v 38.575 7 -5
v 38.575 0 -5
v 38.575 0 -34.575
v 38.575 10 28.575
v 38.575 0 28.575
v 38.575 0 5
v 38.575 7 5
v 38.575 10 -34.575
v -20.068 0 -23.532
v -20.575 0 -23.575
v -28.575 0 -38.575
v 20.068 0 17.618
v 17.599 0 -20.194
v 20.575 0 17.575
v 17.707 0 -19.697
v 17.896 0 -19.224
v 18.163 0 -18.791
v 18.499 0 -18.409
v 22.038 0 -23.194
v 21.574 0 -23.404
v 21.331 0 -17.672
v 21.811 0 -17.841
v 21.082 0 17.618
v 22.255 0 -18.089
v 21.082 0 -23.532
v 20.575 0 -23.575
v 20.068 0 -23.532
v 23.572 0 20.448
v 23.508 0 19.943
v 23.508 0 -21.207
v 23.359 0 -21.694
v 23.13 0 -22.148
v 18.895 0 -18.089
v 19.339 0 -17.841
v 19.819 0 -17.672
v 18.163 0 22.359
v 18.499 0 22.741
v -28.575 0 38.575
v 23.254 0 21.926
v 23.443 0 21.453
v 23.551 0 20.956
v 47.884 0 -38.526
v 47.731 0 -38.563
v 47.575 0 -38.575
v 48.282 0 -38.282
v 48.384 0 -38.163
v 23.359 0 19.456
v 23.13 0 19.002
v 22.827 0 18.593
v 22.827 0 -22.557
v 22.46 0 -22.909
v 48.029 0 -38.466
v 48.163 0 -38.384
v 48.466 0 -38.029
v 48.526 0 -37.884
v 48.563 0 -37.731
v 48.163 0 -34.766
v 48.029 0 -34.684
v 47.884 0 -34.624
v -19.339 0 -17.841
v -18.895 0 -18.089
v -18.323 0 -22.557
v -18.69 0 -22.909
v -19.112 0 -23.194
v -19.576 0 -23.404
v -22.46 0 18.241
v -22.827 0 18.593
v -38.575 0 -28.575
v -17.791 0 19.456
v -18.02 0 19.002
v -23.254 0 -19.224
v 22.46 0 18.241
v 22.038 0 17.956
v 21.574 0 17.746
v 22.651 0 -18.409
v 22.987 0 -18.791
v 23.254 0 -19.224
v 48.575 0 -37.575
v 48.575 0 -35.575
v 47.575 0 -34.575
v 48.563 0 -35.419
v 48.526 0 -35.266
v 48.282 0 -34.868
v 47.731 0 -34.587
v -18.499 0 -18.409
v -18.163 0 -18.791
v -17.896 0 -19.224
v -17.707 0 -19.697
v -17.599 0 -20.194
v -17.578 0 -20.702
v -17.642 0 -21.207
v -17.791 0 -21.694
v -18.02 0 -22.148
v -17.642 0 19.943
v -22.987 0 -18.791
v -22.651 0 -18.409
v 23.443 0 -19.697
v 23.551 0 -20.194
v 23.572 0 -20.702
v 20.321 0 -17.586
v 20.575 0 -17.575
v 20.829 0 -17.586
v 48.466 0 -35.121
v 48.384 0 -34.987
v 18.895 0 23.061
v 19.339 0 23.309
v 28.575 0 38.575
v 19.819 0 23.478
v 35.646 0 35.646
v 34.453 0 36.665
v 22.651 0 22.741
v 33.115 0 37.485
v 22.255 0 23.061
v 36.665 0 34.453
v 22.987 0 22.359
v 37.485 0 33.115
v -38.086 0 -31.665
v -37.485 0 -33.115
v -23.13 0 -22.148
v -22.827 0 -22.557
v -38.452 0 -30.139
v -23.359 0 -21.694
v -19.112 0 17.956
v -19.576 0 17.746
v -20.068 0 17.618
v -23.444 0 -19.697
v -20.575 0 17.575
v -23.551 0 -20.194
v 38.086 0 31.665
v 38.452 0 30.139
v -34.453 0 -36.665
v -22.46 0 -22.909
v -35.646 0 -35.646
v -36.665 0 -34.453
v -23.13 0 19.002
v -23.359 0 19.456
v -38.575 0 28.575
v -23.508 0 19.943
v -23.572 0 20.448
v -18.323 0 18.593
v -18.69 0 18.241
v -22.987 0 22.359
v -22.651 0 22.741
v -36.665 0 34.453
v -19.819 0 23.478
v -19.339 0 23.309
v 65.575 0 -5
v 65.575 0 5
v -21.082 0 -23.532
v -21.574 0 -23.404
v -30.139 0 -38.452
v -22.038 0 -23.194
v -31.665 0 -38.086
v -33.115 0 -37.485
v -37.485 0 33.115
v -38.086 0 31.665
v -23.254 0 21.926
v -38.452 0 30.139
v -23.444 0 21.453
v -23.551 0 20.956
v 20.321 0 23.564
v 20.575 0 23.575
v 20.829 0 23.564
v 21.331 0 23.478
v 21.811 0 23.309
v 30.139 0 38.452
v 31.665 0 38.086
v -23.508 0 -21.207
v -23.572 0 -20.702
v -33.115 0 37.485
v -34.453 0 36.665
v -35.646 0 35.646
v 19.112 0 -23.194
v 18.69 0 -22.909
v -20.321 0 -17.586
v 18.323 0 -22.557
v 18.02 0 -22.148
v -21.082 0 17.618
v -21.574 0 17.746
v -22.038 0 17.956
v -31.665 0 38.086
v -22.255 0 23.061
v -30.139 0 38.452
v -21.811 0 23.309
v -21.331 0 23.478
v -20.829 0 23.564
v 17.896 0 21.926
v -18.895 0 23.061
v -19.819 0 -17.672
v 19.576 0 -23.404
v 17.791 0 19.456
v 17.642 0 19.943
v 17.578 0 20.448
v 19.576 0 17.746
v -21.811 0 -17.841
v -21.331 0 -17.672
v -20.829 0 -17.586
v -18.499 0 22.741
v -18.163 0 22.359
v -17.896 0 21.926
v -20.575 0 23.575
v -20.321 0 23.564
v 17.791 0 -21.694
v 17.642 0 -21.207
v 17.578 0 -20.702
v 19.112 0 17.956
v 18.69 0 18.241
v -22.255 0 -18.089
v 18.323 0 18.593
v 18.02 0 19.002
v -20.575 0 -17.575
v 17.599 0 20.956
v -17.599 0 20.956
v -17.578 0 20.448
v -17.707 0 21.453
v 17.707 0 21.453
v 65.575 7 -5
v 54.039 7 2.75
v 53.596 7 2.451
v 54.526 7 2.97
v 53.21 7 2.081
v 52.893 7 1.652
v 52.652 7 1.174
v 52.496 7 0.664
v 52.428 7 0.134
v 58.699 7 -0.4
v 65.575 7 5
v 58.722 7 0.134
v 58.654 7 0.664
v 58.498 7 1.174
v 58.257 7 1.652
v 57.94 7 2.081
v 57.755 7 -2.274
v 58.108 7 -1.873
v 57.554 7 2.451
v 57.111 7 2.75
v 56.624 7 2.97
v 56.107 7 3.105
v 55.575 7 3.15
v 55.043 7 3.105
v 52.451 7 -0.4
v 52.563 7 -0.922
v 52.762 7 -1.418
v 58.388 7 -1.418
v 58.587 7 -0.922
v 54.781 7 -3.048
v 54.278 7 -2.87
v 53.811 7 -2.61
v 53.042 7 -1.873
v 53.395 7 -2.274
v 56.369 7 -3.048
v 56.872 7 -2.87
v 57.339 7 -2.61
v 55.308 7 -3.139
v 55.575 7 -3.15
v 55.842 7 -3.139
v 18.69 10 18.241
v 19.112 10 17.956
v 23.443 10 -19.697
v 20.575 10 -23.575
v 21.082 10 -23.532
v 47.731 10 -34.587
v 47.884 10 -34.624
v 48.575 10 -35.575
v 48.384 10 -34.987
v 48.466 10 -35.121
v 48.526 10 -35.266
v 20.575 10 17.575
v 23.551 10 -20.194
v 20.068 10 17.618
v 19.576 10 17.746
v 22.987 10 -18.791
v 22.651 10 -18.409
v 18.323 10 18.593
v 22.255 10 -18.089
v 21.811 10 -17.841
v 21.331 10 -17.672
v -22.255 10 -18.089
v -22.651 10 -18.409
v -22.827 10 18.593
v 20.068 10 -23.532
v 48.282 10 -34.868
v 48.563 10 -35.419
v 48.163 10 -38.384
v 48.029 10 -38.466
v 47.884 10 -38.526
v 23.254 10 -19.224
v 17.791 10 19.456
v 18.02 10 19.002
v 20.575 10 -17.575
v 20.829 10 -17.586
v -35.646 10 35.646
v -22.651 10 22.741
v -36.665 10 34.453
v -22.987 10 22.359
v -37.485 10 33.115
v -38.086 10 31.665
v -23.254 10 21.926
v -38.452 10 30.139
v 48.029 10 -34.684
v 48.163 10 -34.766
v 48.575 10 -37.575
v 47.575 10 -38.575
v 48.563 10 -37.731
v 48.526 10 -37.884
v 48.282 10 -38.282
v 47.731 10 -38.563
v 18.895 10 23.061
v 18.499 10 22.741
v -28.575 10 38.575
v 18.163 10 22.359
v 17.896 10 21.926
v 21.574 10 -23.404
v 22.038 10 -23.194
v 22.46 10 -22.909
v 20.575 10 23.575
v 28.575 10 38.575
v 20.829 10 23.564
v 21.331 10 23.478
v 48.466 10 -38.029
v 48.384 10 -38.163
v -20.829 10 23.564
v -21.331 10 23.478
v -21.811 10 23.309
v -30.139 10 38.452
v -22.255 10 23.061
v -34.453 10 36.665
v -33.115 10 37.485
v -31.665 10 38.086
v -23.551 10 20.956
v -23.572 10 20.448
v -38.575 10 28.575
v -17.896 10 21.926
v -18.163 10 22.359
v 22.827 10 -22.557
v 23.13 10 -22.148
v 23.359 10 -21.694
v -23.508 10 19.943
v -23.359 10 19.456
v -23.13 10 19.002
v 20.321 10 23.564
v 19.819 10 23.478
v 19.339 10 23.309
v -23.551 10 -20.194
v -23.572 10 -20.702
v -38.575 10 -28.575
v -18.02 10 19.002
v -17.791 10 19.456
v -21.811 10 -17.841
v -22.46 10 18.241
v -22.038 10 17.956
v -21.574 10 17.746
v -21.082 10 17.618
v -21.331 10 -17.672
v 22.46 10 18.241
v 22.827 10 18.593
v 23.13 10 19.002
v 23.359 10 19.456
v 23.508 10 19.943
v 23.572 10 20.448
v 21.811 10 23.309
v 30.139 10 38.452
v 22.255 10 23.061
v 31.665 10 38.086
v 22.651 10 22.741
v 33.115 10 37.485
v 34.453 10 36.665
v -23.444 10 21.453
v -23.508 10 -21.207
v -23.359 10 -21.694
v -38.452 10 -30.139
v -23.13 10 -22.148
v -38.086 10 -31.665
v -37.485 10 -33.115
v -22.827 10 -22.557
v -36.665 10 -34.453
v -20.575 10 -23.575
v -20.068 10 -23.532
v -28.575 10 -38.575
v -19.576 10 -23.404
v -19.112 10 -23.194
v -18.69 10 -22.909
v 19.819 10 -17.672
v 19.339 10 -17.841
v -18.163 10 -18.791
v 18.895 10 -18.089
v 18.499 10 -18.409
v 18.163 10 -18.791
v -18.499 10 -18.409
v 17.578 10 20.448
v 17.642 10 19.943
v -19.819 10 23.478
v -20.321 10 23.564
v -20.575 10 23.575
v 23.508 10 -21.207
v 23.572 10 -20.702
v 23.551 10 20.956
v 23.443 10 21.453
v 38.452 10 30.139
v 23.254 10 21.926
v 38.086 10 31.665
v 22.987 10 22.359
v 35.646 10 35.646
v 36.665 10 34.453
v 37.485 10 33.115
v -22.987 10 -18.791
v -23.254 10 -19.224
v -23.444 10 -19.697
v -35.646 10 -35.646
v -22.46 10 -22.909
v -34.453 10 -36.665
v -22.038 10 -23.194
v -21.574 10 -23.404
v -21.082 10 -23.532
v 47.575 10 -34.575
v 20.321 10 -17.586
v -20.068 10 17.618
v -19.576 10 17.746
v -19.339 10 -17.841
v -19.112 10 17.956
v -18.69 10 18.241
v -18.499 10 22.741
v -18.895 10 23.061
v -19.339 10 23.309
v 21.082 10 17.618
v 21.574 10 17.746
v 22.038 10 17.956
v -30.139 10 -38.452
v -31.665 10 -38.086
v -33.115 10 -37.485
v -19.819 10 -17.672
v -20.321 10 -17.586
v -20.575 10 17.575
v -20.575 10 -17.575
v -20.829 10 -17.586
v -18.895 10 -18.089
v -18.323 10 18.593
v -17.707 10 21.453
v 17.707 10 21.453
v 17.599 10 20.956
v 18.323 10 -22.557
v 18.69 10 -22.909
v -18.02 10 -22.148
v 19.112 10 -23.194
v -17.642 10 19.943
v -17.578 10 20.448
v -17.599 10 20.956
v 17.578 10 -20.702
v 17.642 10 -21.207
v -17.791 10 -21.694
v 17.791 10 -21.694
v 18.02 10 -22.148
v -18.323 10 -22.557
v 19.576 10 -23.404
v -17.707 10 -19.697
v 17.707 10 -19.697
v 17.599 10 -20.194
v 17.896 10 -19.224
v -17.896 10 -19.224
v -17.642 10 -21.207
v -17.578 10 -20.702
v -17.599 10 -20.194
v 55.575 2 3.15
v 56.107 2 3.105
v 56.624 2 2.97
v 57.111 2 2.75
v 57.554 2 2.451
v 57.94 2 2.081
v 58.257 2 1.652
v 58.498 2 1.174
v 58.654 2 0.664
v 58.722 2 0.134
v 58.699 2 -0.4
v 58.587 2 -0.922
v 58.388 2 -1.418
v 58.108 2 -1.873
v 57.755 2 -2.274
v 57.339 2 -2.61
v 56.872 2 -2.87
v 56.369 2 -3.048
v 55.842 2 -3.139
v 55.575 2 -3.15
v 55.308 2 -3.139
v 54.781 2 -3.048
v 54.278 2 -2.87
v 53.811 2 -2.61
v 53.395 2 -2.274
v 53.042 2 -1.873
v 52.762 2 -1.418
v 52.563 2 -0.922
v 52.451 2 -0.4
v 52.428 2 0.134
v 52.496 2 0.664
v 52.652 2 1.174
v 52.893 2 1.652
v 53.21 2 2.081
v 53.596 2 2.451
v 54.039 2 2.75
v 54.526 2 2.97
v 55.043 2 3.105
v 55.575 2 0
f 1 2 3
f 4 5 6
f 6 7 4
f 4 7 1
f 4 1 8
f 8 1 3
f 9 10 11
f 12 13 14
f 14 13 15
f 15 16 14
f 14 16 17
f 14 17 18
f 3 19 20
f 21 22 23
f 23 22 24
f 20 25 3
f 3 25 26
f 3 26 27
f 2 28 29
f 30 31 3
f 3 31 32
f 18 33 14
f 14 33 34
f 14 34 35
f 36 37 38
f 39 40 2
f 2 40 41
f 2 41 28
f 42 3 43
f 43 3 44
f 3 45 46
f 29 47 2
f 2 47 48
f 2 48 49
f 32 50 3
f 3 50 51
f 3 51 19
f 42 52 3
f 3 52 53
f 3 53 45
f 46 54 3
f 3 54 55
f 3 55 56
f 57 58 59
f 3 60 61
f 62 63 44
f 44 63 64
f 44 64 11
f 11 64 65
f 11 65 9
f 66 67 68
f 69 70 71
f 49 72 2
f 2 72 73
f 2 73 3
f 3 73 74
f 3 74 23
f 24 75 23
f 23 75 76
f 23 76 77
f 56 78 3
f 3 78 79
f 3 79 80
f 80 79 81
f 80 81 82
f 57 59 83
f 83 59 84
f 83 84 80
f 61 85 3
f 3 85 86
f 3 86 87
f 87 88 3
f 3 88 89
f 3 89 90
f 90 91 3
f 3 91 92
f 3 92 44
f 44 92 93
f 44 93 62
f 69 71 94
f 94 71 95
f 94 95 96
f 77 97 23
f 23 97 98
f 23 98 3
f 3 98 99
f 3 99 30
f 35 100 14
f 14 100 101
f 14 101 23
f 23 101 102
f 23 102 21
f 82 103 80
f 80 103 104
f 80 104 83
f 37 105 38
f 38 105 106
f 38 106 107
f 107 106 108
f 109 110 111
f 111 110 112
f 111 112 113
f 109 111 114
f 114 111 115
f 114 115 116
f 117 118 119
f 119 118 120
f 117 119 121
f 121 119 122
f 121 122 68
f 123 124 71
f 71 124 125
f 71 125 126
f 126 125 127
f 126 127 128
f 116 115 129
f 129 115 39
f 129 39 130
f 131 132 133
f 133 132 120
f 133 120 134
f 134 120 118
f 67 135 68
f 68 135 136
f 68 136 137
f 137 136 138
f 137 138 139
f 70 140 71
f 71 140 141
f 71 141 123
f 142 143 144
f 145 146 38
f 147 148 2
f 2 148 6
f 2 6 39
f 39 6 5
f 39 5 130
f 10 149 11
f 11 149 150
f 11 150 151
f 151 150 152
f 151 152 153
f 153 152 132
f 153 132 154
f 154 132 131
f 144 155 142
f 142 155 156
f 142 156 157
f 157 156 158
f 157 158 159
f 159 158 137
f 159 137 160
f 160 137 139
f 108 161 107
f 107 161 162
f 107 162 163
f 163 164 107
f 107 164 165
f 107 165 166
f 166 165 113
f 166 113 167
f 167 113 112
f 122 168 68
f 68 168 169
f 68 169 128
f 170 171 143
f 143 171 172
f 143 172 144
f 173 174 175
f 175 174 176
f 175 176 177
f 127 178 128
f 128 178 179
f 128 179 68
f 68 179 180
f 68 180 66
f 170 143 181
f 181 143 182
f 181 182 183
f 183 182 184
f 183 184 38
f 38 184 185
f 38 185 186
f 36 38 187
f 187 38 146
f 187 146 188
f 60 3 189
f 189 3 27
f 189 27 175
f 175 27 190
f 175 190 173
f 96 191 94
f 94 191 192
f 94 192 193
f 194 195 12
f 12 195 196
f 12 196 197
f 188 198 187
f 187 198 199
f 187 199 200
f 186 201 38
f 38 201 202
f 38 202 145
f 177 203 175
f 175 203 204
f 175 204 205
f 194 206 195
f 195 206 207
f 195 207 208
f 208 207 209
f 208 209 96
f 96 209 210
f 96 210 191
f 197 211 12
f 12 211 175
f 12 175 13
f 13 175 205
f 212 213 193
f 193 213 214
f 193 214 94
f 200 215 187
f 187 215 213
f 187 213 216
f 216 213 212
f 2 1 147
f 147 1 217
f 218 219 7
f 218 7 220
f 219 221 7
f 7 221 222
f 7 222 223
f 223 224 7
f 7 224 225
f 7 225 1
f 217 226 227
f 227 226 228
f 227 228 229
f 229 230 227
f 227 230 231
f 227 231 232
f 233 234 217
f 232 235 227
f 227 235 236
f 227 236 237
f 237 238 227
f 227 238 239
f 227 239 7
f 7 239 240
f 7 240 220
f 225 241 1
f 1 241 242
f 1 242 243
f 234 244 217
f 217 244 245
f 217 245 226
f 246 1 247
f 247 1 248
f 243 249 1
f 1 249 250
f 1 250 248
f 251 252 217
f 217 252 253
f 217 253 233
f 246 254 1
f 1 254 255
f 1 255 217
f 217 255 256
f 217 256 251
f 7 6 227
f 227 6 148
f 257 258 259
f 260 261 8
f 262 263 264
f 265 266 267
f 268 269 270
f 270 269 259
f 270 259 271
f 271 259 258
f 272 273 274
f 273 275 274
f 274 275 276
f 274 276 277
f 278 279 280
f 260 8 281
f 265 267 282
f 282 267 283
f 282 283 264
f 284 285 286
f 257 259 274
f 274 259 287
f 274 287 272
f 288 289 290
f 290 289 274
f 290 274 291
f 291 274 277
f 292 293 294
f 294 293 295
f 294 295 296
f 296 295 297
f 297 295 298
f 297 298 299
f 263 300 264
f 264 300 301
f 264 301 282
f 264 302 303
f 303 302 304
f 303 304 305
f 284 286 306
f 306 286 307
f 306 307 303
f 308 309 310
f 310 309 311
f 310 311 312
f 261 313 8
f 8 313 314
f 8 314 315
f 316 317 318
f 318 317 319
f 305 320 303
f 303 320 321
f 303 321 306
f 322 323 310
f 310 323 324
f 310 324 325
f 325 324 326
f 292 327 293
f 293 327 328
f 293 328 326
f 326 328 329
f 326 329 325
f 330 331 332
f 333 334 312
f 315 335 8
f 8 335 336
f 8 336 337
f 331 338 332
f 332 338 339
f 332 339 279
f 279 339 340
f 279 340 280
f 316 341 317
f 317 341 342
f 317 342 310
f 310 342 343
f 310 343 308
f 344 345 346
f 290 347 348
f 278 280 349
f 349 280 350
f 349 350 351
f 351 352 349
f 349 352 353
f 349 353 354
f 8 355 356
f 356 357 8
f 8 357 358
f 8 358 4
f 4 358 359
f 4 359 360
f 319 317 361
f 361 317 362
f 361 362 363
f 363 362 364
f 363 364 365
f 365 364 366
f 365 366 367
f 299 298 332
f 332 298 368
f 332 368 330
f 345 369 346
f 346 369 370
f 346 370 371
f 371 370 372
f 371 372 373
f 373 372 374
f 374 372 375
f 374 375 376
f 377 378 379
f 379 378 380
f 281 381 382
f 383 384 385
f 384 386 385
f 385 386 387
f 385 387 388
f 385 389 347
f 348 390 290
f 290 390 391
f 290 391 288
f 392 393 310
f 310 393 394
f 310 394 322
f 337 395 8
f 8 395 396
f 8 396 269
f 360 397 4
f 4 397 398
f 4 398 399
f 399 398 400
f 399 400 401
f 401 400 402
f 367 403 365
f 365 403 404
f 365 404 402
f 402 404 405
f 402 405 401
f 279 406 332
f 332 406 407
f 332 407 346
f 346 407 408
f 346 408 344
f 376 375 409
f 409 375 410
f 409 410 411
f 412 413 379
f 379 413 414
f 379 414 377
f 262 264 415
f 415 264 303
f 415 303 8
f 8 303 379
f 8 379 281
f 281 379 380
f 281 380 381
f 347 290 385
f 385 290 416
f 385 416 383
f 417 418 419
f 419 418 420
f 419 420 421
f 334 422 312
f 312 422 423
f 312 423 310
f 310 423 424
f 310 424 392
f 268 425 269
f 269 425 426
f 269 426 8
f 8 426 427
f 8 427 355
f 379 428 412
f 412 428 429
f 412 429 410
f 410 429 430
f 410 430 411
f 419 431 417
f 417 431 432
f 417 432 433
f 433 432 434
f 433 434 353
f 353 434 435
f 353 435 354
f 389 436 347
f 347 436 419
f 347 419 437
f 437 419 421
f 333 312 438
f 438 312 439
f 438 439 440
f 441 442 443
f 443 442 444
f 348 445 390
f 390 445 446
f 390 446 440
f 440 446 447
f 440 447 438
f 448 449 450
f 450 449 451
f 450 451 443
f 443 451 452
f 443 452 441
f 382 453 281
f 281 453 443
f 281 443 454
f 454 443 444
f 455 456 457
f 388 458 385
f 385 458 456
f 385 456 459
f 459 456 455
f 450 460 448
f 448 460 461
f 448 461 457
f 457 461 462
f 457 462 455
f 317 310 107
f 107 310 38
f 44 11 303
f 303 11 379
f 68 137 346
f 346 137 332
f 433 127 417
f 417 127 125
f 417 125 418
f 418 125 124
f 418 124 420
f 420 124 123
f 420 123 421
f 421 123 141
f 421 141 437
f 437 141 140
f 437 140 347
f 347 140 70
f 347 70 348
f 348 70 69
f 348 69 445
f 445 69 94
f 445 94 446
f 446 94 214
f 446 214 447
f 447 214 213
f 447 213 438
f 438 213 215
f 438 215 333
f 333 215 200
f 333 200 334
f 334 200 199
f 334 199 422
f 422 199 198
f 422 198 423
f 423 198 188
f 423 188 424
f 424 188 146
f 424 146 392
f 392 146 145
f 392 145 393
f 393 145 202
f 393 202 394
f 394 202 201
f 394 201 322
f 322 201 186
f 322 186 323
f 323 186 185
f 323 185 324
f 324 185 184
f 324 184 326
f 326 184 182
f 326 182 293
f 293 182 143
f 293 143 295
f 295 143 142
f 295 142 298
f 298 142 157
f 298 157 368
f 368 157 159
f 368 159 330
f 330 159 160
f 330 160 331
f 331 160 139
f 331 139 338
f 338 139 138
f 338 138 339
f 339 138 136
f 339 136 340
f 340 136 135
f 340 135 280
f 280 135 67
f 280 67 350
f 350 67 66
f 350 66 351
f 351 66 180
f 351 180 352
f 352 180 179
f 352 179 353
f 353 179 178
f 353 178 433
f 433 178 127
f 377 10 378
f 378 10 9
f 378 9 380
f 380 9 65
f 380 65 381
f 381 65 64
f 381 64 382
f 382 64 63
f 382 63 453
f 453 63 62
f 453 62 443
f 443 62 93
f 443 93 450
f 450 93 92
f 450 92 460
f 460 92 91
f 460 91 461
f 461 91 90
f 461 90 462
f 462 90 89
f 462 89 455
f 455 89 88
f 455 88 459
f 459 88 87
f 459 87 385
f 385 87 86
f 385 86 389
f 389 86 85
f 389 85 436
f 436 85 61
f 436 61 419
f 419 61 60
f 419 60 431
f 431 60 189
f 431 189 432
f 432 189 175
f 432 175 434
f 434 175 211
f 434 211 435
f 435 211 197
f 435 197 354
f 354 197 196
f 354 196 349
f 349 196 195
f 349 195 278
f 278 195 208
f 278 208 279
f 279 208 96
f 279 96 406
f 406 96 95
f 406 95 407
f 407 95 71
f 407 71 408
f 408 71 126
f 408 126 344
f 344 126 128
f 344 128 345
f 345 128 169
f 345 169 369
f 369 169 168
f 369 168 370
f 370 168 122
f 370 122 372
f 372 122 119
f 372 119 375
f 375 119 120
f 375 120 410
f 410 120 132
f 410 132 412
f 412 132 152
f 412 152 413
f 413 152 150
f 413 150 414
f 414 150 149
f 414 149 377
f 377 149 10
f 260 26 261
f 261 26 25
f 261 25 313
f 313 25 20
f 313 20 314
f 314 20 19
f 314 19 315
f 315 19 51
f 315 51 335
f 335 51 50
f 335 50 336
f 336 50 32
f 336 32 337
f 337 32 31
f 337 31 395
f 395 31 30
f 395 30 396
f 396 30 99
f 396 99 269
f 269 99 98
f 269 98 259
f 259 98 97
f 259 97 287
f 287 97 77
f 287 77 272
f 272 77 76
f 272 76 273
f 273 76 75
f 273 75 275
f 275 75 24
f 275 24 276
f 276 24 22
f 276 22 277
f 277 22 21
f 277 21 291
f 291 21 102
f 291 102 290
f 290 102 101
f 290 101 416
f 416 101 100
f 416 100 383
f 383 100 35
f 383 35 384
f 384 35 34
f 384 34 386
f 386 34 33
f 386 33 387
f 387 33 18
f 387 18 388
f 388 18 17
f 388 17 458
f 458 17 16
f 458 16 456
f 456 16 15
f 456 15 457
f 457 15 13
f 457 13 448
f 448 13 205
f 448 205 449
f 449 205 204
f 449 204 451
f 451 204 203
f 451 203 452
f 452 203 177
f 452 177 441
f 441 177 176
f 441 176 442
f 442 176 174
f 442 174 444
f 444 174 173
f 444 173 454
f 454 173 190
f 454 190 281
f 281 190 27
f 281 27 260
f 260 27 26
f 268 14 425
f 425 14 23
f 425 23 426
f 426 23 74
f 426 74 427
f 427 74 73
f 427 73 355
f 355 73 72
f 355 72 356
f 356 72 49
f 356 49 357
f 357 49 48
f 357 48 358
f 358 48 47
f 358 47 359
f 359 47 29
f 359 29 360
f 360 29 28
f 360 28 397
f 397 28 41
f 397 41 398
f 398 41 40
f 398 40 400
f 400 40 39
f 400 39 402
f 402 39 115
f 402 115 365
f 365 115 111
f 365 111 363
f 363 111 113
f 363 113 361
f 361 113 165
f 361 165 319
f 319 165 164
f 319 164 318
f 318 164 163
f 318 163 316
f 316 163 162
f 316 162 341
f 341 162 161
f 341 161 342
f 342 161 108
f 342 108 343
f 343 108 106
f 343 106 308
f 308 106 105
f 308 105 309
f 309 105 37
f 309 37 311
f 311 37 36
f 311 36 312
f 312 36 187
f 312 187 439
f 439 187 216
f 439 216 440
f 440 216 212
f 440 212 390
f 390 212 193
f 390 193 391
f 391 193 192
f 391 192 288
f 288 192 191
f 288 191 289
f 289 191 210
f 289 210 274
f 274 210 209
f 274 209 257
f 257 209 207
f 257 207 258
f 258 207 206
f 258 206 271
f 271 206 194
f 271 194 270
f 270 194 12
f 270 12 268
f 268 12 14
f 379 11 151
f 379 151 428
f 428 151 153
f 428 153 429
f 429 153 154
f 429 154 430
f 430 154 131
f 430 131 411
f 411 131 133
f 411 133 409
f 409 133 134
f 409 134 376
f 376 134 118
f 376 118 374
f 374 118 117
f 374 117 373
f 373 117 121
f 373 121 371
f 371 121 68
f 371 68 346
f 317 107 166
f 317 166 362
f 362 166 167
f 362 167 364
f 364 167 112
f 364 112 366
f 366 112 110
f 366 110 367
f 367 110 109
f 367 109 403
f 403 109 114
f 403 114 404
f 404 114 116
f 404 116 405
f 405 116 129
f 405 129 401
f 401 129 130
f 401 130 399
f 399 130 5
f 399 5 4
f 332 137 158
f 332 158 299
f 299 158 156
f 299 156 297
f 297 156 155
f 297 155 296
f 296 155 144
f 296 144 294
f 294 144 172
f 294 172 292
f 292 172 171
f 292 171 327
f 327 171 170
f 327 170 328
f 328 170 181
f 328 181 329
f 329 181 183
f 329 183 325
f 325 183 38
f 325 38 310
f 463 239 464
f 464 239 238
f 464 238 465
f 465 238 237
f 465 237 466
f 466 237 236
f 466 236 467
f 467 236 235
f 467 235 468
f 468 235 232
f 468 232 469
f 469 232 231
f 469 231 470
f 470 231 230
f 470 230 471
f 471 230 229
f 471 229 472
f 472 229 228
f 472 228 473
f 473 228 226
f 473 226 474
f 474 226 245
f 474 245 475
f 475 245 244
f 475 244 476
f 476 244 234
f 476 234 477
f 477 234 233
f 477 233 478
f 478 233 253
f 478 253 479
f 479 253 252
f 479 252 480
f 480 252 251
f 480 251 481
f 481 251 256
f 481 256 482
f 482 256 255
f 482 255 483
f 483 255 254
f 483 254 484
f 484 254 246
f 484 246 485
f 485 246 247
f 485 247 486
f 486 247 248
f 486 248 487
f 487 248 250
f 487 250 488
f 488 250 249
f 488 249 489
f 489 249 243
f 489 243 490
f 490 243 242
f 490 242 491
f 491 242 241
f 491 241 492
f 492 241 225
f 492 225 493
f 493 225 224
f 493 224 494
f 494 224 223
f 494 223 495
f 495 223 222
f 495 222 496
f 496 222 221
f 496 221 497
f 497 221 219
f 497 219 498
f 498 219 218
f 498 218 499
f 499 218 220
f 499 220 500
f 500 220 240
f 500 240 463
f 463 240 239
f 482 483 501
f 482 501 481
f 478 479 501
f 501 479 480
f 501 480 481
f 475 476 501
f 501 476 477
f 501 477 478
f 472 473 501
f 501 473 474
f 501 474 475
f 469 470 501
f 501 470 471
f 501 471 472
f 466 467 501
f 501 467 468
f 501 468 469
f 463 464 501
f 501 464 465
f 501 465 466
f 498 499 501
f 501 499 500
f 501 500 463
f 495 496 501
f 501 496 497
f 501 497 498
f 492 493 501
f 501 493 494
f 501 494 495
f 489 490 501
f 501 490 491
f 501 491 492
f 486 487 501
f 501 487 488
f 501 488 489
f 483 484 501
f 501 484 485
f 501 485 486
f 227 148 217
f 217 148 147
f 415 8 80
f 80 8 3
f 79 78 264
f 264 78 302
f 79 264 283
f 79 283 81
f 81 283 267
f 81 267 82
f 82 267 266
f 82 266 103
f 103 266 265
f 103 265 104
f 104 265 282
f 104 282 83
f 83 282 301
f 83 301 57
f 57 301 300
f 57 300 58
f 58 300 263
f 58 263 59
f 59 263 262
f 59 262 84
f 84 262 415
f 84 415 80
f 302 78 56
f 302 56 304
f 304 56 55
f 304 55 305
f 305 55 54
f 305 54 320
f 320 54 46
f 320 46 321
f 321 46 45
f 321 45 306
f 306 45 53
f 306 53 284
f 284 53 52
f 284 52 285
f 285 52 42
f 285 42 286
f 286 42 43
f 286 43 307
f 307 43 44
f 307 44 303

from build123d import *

# Parameters (mm, degrees)
CROQUIS1_W              = 77.15
CROQUIS1_H              = 77.15
CROQUIS1_R              = 3
SALIENTE_EXTRUIR1_DEPTH = 10
REDONDEO1_R             = 10
SALIENTE_EXTRUIR2_DEPTH = 30
CORTAR_EXTRUIR1_START   = -3
CROQUIS3_R              = 3.15
CORTAR_EXTRUIR1_DEPTH   = 5
CORTAR_EXTRUIR2_START   = -3
CROQUIS4_W              = 3
CROQUIS4_H              = 10
CORTAR_EXTRUIR2_DEPTH   = 43
CROQUIS5_W              = 4
CROQUIS5_H              = 10
SALIENTE_EXTRUIR3_DEPTH = 10
REDONDEO2_R             = 1


with BuildPart() as part:
    # Croquis1 → Saliente-Extruir1 (new body)
    with BuildSketch(Plane(origin=(0, 0, 0), x_dir=(1, 0, 0), z_dir=(0, 1, 0))):
        Rectangle(CROQUIS1_W, CROQUIS1_H)
        with Locations(Location((-20.575, -20.575, 0), (0, 0, 270))):
            Circle(CROQUIS1_R, mode=Mode.SUBTRACT)
        with Locations(Location((-20.575, 20.575, 0), (0, 0, 270))):
            Circle(CROQUIS1_R, mode=Mode.SUBTRACT)
        with Locations(Location((20.575, 20.575, 0), (0, 0, 270))):
            Circle(CROQUIS1_R, mode=Mode.SUBTRACT)
        with Locations(Location((20.575, -20.575, 0), (0, 0, 270))):
            Circle(CROQUIS1_R, mode=Mode.SUBTRACT)
    extrude(amount=SALIENTE_EXTRUIR1_DEPTH)

    # Redondeo1
    redondeo1_edges = [part.edges().sort_by_distance(p)[0] for p in [
        (-38.575, 5, 38.575),
        (-38.575, 5, -38.575),
        (38.575, 5, 38.575),
    ]]
    fillet(redondeo1_edges, radius=REDONDEO1_R)

    # Croquis2 → Saliente-Extruir2 (add)
    with BuildSketch(Plane(origin=(38.575, 0, 0), x_dir=(0, 0, -1), z_dir=(1, 0, 0))):
        Polygon((5, 0), (0, 0), (-5, 0), (-5, 7), (5, 7), align=None)
    extrude(amount=SALIENTE_EXTRUIR2_DEPTH)

    # Croquis3 → Cortar-Extruir1 (cut)
    with BuildSketch(Plane(origin=(0, 10, 0), x_dir=(1, 0, 0), z_dir=(0, 1, 0)).offset(CORTAR_EXTRUIR1_START)):
        with Locations(Location((55.575, 0, 0), (0, 0, 90))):
            Circle(CROQUIS3_R)
    extrude(amount=-CORTAR_EXTRUIR1_DEPTH, mode=Mode.SUBTRACT)

    # Croquis4 → Cortar-Extruir2 (cut)
    with BuildSketch(Plane(origin=(0, 10, 0), x_dir=(1, 0, 0), z_dir=(0, 1, 0)).offset(CORTAR_EXTRUIR2_START)):
        with Locations((67.075, 0)):
            Rectangle(CROQUIS4_W, CROQUIS4_H)
    extrude(amount=-CORTAR_EXTRUIR2_DEPTH, mode=Mode.SUBTRACT)

    # Croquis5 → Saliente-Extruir3 (add)
    with BuildSketch(Plane(origin=(38.575, 0, 0), x_dir=(0, 0, -1), z_dir=(1, 0, 0))):
        with Locations((36.575, 5)):
            Rectangle(CROQUIS5_W, CROQUIS5_H)
    extrude(amount=SALIENTE_EXTRUIR3_DEPTH)

    # Redondeo2
    redondeo2_edges = [part.edges().sort_by_distance(p)[0] for p in [
        (48.575, 5, -38.575),
        (48.575, 5, -34.575),
    ]]
    fillet(redondeo2_edges, radius=REDONDEO2_R)


solid = part.part
